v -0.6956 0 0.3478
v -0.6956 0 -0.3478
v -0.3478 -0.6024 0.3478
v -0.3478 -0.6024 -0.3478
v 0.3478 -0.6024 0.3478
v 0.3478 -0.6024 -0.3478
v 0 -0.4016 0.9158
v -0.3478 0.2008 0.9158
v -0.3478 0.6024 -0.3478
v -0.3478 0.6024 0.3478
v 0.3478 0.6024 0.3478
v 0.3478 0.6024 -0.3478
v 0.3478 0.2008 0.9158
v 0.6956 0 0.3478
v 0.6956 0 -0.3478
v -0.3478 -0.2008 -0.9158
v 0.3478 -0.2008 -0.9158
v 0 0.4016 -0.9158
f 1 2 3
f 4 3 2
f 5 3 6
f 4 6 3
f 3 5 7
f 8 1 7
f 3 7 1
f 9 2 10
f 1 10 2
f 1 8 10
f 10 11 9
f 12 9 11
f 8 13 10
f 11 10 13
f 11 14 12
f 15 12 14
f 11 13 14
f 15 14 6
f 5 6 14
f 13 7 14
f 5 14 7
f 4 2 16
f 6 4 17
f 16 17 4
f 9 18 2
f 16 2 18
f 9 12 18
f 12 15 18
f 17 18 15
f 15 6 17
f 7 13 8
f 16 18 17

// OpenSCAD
polyhedron( points = [[-0.347818484716312, -0.602439287491945, 0.347818484798353], [-0.695636969501646, 5.11598896073507e-11, 0.347818484798353], [-0.347818484878596, 0.602439287563032, 0.347818484798353], [0.347818484547818, 0.602439287563032, 0.347818484798353], [0.695636969387248, 5.11612797692753e-11, 0.347818484798353], [0.347818484818293, -0.602439287491945, 0.347818484798353], [-0.34781848468508, -0.60243928743785, -0.347818484736251], [-0.695636969458982, 8.54547981322284e-11, -0.347818484650924], [-0.347818484630985, 0.60243928738401, -0.347818484736251], [0.347818484880754, 0.602439287252945, -0.347818484906905], [0.695636969600565, -1.76660541684273e-10, -0.347818484992232], [0.347818484826661, -0.602439287506445, -0.347818484906905], [6.90221574083196e-11, -0.401626191580418, 0.915803691957902], [0.347818484570679, 0.200813095866949, 0.915803691957902], [-0.34781848468508, 0.200813095916896, 0.915803691963772], [-0.347818484793186, -0.200813095725778, -0.915803691826126], [-1.44529342963886e-11, 0.401626191466624, -0.915803691911453], [0.34781848466328, -0.200813095790222, -0.915803692002651]], faces = [[0, 1, 7, 6], [0, 6, 11, 5], [0, 5, 12], [0, 12, 14, 1], [1, 2, 8, 7], [1, 14, 2], [2, 3, 9, 8], [2, 14, 13, 3], [3, 4, 10, 9], [3, 13, 4], [4, 5, 11, 10], [4, 13, 12, 5], [6, 7, 15], [6, 15, 17, 11], [7, 8, 16, 15], [8, 9, 16], [9, 10, 17, 16], [10, 11, 17], [12, 13, 14], [15, 16, 17]]);
